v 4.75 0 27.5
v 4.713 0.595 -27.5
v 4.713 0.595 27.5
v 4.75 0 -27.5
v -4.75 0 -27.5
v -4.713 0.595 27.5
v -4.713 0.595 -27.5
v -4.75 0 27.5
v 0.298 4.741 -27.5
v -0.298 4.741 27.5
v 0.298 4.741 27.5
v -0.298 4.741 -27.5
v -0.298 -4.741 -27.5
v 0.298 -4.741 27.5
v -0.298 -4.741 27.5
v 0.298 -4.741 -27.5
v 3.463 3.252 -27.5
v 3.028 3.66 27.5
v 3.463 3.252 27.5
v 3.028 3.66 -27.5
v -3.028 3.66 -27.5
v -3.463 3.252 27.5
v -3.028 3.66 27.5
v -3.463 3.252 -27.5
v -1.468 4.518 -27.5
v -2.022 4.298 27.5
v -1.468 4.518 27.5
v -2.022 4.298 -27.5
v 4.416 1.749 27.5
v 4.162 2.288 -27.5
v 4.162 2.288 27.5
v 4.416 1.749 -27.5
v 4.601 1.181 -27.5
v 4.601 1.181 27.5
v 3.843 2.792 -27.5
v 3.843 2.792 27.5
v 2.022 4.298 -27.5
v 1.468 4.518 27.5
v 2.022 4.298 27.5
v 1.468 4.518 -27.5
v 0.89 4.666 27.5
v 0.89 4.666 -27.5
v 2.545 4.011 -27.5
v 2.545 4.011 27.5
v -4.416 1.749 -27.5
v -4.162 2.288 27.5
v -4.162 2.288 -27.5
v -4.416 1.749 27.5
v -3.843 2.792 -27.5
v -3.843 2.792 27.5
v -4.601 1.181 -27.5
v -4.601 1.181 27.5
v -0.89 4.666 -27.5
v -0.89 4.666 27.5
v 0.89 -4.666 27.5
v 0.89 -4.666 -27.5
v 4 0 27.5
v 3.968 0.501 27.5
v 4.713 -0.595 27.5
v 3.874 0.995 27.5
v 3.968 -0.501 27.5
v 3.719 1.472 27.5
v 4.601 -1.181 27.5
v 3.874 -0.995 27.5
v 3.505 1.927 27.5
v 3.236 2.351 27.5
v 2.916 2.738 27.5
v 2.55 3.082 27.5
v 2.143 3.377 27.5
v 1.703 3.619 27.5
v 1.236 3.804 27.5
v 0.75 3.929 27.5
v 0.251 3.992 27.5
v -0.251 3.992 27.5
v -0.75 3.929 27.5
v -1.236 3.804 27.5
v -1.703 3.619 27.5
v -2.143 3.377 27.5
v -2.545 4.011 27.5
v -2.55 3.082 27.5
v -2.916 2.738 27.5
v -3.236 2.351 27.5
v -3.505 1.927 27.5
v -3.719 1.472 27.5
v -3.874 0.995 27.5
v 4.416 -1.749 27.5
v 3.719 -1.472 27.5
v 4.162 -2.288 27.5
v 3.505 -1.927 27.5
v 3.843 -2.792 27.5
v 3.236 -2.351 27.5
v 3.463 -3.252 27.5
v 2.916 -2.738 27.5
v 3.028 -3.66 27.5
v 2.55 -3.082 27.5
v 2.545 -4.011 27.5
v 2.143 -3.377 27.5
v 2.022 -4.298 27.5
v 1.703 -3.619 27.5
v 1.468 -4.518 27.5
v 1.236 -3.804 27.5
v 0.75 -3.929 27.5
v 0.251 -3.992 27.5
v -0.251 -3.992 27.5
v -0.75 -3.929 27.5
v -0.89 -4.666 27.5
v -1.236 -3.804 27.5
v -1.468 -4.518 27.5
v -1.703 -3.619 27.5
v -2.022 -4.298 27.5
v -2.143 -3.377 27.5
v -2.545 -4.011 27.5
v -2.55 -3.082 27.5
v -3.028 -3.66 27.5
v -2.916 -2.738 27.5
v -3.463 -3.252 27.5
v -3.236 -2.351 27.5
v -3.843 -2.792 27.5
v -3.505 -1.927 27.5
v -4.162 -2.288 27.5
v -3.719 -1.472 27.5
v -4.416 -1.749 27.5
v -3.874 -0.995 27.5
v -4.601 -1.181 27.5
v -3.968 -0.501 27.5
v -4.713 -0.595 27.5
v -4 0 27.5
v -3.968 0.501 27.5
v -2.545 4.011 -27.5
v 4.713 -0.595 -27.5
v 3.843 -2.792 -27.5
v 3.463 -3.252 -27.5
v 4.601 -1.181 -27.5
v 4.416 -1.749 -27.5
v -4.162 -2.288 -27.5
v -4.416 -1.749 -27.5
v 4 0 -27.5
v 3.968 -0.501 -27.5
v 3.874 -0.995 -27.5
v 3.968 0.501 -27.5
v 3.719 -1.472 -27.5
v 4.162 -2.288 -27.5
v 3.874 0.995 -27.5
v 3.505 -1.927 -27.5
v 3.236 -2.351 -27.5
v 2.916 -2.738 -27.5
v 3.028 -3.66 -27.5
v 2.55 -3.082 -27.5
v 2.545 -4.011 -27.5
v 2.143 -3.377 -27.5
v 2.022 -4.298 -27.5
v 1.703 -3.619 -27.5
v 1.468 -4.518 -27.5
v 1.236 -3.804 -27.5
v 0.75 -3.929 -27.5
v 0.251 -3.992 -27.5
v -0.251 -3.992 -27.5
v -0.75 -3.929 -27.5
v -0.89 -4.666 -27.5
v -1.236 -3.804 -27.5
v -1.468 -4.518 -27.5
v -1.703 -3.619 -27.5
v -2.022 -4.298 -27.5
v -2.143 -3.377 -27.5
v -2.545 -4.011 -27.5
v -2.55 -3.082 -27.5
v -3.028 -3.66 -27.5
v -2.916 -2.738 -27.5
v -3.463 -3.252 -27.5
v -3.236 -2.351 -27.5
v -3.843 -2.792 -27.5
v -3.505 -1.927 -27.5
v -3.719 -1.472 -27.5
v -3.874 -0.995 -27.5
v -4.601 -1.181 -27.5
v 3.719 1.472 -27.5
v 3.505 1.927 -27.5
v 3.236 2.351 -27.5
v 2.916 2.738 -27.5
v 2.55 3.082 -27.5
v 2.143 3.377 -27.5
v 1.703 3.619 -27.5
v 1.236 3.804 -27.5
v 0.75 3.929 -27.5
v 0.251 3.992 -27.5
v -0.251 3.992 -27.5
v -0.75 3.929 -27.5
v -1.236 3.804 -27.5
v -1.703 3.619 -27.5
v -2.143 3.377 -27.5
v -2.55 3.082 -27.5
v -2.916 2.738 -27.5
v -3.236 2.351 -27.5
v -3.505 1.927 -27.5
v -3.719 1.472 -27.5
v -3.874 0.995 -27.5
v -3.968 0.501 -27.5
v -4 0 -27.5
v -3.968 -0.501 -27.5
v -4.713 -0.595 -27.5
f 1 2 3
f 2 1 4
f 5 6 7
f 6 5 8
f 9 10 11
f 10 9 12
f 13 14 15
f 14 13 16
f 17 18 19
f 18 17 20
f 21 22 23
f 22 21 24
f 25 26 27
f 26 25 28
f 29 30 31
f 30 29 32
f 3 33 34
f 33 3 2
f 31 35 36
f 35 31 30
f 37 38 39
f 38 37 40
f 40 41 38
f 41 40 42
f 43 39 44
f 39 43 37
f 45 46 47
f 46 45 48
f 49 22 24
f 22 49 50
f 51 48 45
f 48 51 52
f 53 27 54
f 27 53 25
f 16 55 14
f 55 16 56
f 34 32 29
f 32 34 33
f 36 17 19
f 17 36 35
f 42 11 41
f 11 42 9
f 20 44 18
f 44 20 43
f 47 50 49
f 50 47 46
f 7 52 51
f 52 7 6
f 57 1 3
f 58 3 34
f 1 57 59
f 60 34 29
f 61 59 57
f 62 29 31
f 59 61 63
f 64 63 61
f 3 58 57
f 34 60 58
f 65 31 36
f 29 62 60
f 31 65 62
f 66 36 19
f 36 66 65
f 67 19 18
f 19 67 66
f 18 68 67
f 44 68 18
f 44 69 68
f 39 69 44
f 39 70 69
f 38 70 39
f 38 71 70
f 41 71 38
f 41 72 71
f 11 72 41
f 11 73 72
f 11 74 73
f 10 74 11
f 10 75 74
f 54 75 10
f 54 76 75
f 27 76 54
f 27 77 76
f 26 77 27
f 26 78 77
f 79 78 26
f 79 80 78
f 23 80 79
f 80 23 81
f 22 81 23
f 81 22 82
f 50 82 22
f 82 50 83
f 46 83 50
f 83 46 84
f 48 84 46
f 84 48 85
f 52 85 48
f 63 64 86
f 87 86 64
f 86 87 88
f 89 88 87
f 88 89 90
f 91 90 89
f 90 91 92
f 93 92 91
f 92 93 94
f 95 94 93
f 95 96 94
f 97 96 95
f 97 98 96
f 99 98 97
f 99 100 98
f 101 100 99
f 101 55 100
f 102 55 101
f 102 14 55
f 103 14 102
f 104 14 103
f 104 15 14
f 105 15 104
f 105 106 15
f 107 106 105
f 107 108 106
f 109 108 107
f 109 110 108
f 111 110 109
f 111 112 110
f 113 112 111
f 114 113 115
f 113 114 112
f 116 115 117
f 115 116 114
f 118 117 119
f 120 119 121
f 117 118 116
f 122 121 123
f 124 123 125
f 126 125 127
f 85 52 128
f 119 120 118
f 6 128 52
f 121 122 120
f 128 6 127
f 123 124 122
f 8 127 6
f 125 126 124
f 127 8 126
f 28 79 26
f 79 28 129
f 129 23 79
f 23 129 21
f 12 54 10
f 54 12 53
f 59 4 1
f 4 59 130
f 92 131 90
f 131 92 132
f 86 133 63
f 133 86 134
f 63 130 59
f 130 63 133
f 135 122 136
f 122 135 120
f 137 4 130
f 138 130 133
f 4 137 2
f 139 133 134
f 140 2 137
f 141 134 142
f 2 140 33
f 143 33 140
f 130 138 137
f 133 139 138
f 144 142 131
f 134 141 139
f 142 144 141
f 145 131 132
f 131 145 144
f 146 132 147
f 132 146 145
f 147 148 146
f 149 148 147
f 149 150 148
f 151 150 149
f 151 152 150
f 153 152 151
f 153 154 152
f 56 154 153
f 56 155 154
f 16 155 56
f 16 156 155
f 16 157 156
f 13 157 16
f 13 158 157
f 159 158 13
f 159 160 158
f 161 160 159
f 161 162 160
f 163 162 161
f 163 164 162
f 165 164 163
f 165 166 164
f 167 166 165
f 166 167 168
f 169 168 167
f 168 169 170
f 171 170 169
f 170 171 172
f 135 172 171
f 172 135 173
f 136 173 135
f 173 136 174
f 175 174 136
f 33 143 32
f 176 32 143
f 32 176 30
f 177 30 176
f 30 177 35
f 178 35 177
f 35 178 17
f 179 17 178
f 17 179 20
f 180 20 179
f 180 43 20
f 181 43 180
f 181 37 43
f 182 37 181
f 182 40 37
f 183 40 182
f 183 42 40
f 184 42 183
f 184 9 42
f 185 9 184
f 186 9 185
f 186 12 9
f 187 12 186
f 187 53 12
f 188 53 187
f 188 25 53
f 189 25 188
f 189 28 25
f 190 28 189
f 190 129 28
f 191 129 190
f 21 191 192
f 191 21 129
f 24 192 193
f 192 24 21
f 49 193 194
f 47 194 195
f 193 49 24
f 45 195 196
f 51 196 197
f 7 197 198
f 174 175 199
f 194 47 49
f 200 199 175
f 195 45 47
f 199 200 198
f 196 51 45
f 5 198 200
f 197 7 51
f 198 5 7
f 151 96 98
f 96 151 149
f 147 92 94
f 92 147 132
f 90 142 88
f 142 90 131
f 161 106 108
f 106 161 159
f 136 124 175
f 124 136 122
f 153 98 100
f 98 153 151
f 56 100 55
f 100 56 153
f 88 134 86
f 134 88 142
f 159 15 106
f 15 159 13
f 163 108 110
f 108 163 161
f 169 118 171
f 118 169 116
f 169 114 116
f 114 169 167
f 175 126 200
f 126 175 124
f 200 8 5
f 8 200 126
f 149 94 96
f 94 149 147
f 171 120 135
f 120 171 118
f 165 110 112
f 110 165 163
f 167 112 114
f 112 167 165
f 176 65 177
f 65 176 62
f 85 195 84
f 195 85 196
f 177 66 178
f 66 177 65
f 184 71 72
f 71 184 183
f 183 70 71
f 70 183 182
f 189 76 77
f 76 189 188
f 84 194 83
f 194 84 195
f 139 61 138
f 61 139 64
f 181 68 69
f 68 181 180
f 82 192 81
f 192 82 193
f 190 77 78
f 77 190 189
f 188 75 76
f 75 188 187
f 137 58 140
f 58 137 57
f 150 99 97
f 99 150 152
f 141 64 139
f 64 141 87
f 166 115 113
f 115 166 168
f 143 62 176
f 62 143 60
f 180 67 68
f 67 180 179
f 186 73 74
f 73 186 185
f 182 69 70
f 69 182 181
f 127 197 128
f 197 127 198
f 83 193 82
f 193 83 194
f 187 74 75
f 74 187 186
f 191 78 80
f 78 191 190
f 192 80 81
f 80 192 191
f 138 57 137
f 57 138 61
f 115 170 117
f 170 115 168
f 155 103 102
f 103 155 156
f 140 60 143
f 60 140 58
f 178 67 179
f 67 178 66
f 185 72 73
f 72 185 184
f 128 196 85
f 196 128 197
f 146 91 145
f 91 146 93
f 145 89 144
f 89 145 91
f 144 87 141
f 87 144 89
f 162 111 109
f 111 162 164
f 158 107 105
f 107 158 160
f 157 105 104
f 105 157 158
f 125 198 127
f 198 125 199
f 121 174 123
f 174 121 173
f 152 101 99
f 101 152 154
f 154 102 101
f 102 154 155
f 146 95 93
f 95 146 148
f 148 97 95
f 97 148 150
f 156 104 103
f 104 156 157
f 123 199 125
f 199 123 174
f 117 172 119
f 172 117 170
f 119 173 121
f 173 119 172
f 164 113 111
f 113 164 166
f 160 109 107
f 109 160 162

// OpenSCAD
$fn = 50;


difference() {
	union() {
		translate(v = [0, 0, -27.5000000000]) {
			cylinder(h = 55, r = 4.7500000000);
		}
	}
	union() {
		translate(v = [0, 0, -100.0000000000]) {
			cylinder(h = 200, r = 4.0000000000);
		}
	}
}
